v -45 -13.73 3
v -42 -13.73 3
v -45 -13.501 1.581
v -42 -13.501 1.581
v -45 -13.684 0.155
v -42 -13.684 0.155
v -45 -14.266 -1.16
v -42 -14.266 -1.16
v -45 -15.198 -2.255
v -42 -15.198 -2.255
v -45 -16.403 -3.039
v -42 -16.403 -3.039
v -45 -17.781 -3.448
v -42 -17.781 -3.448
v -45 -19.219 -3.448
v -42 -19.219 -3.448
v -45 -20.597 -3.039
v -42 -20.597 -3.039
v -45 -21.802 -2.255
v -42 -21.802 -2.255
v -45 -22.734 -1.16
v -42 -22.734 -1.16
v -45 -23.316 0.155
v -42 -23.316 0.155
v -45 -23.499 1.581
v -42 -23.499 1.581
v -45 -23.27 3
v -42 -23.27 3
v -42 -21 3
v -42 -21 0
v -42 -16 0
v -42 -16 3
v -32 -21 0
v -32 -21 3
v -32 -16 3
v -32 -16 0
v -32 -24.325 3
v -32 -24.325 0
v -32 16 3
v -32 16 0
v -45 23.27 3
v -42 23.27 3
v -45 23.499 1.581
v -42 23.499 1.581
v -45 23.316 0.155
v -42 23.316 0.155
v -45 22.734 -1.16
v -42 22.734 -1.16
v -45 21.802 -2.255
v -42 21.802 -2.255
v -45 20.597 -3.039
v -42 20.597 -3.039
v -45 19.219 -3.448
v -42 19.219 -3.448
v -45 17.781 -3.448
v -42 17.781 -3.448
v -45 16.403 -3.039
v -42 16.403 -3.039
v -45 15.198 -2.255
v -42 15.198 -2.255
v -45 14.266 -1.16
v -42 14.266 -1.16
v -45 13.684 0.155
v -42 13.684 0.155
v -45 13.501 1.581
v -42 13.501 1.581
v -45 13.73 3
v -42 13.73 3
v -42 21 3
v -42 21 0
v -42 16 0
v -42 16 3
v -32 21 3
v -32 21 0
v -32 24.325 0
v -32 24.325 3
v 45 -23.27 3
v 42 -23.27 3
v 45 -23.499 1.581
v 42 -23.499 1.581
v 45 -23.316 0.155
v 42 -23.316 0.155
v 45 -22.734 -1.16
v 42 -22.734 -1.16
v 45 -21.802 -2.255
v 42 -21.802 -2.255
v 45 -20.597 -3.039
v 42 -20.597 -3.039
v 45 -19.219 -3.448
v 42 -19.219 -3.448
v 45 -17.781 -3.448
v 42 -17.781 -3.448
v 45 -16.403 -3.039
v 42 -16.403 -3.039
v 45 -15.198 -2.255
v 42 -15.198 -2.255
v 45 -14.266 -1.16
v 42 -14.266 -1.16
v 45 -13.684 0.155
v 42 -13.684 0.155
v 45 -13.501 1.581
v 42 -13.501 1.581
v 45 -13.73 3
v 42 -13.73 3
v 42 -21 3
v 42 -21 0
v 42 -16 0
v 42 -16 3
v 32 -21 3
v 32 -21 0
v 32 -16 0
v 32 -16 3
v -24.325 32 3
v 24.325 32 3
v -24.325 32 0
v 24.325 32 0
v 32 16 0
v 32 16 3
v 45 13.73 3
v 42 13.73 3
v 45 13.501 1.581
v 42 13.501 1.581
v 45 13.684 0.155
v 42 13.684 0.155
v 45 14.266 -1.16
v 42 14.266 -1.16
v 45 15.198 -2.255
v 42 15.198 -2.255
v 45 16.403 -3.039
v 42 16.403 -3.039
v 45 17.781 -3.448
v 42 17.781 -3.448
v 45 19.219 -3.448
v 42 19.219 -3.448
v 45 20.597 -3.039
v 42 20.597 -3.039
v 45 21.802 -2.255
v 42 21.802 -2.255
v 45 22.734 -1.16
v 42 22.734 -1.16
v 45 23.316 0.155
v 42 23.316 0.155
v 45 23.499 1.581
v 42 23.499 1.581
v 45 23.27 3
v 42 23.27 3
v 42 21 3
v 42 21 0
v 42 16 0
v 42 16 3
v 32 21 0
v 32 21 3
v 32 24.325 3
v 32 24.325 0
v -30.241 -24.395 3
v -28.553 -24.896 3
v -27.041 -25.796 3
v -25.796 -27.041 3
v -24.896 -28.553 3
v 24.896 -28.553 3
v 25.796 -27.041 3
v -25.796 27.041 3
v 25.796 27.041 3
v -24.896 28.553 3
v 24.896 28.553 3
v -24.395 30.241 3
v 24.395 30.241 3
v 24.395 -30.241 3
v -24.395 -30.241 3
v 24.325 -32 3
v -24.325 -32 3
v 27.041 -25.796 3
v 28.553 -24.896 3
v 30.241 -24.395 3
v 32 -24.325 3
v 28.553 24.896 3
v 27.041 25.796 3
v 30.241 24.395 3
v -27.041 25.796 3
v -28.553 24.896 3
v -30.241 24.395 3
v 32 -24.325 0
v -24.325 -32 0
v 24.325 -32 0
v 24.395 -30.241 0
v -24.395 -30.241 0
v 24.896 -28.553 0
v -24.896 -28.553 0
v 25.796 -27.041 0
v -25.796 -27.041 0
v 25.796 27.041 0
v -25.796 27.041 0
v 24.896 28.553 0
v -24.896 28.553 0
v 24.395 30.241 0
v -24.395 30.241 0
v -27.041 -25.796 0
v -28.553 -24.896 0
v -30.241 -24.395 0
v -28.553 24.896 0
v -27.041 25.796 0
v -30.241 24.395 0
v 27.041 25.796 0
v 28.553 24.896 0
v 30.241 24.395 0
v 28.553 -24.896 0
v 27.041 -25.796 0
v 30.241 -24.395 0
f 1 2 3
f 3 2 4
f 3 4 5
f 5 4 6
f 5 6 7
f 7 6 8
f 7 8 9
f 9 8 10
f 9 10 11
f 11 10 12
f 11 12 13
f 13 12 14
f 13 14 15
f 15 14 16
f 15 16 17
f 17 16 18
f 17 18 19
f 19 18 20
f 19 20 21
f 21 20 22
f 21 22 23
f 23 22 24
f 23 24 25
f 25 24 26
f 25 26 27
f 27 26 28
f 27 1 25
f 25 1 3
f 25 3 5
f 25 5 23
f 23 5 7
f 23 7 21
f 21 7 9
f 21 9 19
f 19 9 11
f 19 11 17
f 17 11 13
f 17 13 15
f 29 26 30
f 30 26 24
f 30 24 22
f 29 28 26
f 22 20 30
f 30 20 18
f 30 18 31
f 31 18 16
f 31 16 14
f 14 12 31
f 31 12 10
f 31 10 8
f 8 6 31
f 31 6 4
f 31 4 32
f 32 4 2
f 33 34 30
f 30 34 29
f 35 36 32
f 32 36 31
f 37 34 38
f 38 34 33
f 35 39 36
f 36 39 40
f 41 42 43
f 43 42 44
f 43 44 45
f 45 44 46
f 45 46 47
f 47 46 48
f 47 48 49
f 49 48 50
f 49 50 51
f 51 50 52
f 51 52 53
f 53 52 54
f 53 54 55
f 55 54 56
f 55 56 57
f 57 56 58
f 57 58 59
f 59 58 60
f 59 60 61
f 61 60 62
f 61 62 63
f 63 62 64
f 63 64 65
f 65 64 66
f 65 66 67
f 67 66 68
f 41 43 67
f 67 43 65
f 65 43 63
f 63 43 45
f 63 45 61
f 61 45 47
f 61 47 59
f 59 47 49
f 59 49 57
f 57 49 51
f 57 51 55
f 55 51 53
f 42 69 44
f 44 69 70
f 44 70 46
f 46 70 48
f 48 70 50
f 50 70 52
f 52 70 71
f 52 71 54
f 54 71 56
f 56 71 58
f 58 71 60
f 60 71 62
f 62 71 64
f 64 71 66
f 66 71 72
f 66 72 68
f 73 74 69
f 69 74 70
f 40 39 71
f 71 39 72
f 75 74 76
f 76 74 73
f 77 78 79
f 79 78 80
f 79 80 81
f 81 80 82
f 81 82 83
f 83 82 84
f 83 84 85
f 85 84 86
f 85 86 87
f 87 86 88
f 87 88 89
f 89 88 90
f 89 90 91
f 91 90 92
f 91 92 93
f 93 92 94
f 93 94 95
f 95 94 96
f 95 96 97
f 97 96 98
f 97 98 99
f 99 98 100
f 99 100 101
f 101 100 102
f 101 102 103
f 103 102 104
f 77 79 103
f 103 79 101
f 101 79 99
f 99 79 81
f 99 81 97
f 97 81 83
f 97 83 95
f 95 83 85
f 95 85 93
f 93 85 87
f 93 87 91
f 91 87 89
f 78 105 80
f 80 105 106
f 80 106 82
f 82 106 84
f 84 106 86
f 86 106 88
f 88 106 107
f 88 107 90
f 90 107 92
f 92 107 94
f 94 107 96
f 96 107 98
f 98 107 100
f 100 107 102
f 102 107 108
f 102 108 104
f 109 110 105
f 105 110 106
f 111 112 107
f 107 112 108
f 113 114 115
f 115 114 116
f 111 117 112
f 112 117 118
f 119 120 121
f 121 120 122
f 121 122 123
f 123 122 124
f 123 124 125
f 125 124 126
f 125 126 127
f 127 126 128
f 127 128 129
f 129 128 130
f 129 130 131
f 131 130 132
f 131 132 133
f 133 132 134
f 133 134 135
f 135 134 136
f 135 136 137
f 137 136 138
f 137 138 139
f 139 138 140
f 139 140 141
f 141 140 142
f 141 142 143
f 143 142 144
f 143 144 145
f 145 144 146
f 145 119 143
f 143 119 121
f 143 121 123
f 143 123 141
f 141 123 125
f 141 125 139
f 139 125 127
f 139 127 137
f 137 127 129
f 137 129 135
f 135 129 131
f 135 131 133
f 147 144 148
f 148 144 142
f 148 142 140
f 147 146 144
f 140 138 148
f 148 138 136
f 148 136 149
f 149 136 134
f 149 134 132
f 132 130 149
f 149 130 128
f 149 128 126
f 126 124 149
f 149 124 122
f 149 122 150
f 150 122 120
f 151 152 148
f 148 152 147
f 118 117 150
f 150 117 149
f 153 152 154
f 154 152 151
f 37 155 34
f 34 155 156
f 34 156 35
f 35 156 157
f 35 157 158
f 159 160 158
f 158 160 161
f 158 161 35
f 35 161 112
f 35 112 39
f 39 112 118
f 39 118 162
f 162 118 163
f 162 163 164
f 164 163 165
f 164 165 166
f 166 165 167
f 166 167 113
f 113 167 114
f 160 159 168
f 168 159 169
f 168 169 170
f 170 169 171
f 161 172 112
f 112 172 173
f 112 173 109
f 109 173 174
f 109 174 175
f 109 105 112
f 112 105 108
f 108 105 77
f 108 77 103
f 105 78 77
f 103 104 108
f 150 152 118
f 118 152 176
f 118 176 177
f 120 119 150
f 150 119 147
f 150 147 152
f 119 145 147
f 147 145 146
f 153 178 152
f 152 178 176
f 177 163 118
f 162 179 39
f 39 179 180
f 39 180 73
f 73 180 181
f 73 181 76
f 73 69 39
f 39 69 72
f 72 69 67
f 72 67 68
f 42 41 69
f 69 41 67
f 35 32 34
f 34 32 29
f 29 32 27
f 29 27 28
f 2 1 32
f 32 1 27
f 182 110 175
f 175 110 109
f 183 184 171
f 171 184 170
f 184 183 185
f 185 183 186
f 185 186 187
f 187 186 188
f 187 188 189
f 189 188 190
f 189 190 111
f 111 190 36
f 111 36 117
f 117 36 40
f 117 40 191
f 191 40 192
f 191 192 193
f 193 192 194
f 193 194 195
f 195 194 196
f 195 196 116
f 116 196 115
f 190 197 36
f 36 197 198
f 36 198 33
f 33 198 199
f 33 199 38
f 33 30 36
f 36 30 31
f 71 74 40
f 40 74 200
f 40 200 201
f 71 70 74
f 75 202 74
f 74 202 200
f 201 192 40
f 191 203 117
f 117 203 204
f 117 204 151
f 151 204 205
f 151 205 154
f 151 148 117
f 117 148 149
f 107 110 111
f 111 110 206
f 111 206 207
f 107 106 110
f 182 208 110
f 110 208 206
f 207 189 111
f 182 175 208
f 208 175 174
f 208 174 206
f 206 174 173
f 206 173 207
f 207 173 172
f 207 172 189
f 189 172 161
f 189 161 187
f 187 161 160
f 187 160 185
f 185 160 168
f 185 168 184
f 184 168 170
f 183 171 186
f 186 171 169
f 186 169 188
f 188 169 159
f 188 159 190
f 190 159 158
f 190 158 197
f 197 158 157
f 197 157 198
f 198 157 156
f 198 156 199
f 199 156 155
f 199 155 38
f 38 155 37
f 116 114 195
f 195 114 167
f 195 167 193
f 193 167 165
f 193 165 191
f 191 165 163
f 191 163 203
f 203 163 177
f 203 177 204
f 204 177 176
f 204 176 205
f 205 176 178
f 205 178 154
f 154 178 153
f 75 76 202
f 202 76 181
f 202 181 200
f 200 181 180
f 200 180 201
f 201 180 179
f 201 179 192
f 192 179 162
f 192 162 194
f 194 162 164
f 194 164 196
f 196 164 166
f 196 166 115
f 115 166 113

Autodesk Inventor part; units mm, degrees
ref_plane "YZ Plane" through (0, 0, 0) normal (1, 0, 0) x (0, 1, 0)
ref_plane "XZ Plane" through (0, 0, 0) normal (0, 1, 0) x (-1, 0, 0)
ref_plane "XY Plane" through (0, 0, 0) normal (0, 0, 1) x (1, 0, 0)
sketch "Boceto1" plane through (0, 0, 0) normal (0, 0, 1) x (1, 0, 0)
  line L0 (-32, -32) -> (32, -32)
  line L1 (32, -32) -> (32, 32)
  line L2 (32, 32) -> (-32, 32)
  line L3 (-32, 32) -> (-32, -32)
  line L4 (-32, -32) -> (32, 32) construction
  line L5 (32, -32) -> (-32, 32) construction
  point P0 (0, 0)
  dimension "d0" = 64
  dimension "d1" = 64
extrude "Extrusión1" add sketch "Boceto1" along normal blind 3
sketch "Boceto2" plane through (32, -32, 0) normal (1, 0, 0) x (0, 0, -1)
  line L0 (-74, 16.5) -> (1, 16.5) projected
  arc A0 (1, 10.5) -> (1, 16.5) centre (1, 13.5) ccw projected
  line L1 (1, 10.5) -> (-74, 10.5) projected
  line L2 (-74, -4.5) -> (-74, 10.5) projected
  line L3 (7, -4.5) -> (-74, -4.5) projected
  line L4 (7, -4.5) -> (7, 68.5) projected
  line L5 (7, 68.5) -> (-74, 68.5) projected
  line L6 (-74, 53.5) -> (-74, 68.5) projected
  line L7 (-74, 53.5) -> (1, 53.5) projected
  arc A1 (1, 47.5) -> (1, 53.5) centre (1, 50.5) ccw projected
  line L8 (1, 47.5) -> (-74, 47.5) projected
  line L9 (-74, 16.5) -> (-74, 47.5) projected
  line L10 (0, 0) -> (0, 64) projected
  line L11 (0, 64) -> (-3, 64) projected
  line L12 (-3, 0) -> (-3, 64) projected
  line L13 (0, 0) -> (-3, 0) projected
  line L14 (0, 47.5) -> (-3, 47.5)
  line L15 (-3, 47.5) -> (-3, 53.5)
  line L16 (-3, 53.5) -> (0, 53.5)
  line L17 (0, 53.5) -> (0, 47.5)
  line L18 (0, 47.7) -> (-3, 47.7)
  line L19 (-2.8, 47.7) -> (-2.8, 53.3)
  line L20 (-3, 53.3) -> (0, 53.3)
  line L21 (-0.2, 53.3) -> (-0.2, 47.7)
  line L22 (-2.5, 53) -> (-2.5, 48)
  line L23 (-3, 48) -> (0, 48)
  line L24 (-0.5, 48) -> (-0.5, 53)
  line L25 (0, 53) -> (-3, 53)
  point P0 (0, 32)
  dimension "d4" = 0.2
  dimension "d10" = 0.5
extrude "Extrusión2" add sketch "Boceto2" along normal blind 10 contours L12 L25 L19 L23 | L23 L21 L25 L10 | L19 L25 L22 L23 | L23 L24 L25 L21 | L22 L25 L24 L23
sketch "Boceto3" plane through (42, -32, 0) normal (1, 0, 0) x (0, 0, -1)
  line L0 (-3, 53) -> (-3, 48) projected
  line L1 (0, 48) -> (0, 53) projected
  line L2 (0, 47.7) -> (-3, 53.3)
  circle A0 centre (-1.5, 50.5) radius 5
  line L3 (-3, 53.3) -> (-3, 55.2697)
  line L4 (-3, 47.7) -> (0, 47.7)
  line L5 (0, 47.7) -> (0, 53.3)
  line L6 (0, 53.3) -> (-3, 53.3)
  line L7 (-3, 53.3) -> (-3, 47.7)
  line L8 (-3, 47.7) -> (-3, 42)
  line L9 (-3, 48) -> (0, 48) projected
  line L10 (0, 53) -> (-3, 53) projected
  point P0 (0, 32)
  point P1 (-3, 45.7303)
  point P2 (-2.8393, 53)
  point P3 (-0.1607, 48)
  dimension "d7" = 10
extrude "Extrusión3" add sketch "Boceto3" along normal blind 3 contours L10 L2 L9 L0 | L7 L2 L10 | L9 L2 L4 L7 | L6 L5 L10 L2 | L3 A0 L8 L4 L5 L1 L6 | L10 L1 L9 L2 | L9 L5 L2
ref_plane "Plano de trabajo1" through (0, -32, 3) normal (1, 0, 0) x (0, 0, -1)
ref_plane "Plano de trabajo2" through (-32, 0, 0) normal (0, 1, 0) x (1, 0, 0)
mirror "Simetría1" about plane through (-32, 0, 0) normal (0, 1, 0) of "Extrusión2", "Extrusión3"
mirror "Simetría2" about plane through (0, -32, 3) normal (1, 0, 0) of "Extrusión2", "Simetría1", "Extrusión3"
sketch "Boceto4" plane through (0, 0, 3) normal (0, 0, 1) x (1, 0, 0)
  arc A0 (-26.7524, -33.5) -> (-33.5, -26.7524) centre (-31.4, -31.4) ccw projected
  arc A1 (33.5, -26.7524) -> (26.7524, -33.5) centre (31.4, -31.4) ccw projected
  arc A2 (26.7524, 33.5) -> (33.5, 26.7524) centre (31.4, 31.4) ccw projected
  arc A3 (-33.5, 26.7524) -> (-26.7524, 33.5) centre (-31.4, 31.4) ccw projected
  line L0 (32, -32) -> (32, -21) projected
  line L1 (32, -21) -> (42, -21) projected
  line L2 (42, -23.2697) -> (42, -21) projected
  line L3 (42, -23.2697) -> (45, -23.2697) projected
  line L4 (45, -23.2697) -> (45, -13.7303) projected
  line L5 (42, -13.7303) -> (45, -13.7303) projected
  line L6 (42, -16) -> (42, -13.7303) projected
  line L7 (32, -16) -> (42, -16) projected
  line L8 (32, -16) -> (32, 16) projected
  line L9 (32, 16) -> (42, 16) projected
  line L10 (42, 16) -> (42, 13.7303) projected
  line L11 (42, 13.7303) -> (45, 13.7303) projected
  line L12 (45, 23.2697) -> (45, 13.7303) projected
  line L13 (42, 23.2697) -> (45, 23.2697) projected
  line L14 (42, 23.2697) -> (42, 21) projected
  line L15 (32, 21) -> (42, 21) projected
  line L16 (32, 21) -> (32, 32) projected
  line L17 (32, 32) -> (-32, 32) projected
  line L18 (-32, 32) -> (-32, 21) projected
  line L19 (-32, 21) -> (-42, 21) projected
  line L20 (-42, 23.2697) -> (-42, 21) projected
  line L21 (-42, 23.2697) -> (-45, 23.2697) projected
  line L22 (-45, 23.2697) -> (-45, 13.7303) projected
  line L23 (-42, 13.7303) -> (-45, 13.7303) projected
  line L24 (-42, 16) -> (-42, 13.7303) projected
  line L25 (-32, 16) -> (-42, 16) projected
  line L26 (-32, 16) -> (-32, -16) projected
  line L27 (-32, -16) -> (-42, -16) projected
  line L28 (-42, -16) -> (-42, -13.7303) projected
  line L29 (-42, -13.7303) -> (-45, -13.7303) projected
  line L30 (-45, -23.2697) -> (-45, -13.7303) projected
  line L31 (-42, -23.2697) -> (-45, -23.2697) projected
  line L32 (-42, -23.2697) -> (-42, -21) projected
  line L33 (-32, -21) -> (-42, -21) projected
  line L34 (-32, -21) -> (-32, -32) projected
  line L35 (-32, -32) -> (32, -32) projected
  arc A4 (-24.9298, -34.3235) -> (-34.3235, -24.9298) centre (-31.4, -31.4) ccw
  arc A5 (-34.3235, 24.9298) -> (-24.9298, 34.3235) centre (-31.4, 31.4) ccw
  arc A6 (24.9298, 34.3235) -> (34.3235, 24.9298) centre (31.4, 31.4) ccw
  arc A7 (34.3235, -24.9298) -> (24.9298, -34.3235) centre (31.4, -31.4) ccw
  point P0 (0, 0)
  point P1 (-32, 24.3254)
  point P2 (-24.3254, 32)
  point P3 (-24.3254, -32)
  point P4 (-32, -24.3254)
  point P5 (32, -24.3254)
  point P6 (24.3254, -32)
  point P7 (24.3254, 32)
  point P8 (32, 24.3254)
  dimension "d11" = 2
  dimension "d12" = 2
  dimension "d13" = 2
  dimension "d14" = 2
extrude "Extrusión4" cut sketch "Boceto4" against normal blind 3 contours L35 L34 A0 | A0 L34 A4 L35 | A7 L0 A1 L35 | A1 L0 L35 | L18 A3 L17 A5 | L18 L17 A3 | A6 L17 A2 L16 | A2 L17 L16
properties part number "Parte deslizante"
